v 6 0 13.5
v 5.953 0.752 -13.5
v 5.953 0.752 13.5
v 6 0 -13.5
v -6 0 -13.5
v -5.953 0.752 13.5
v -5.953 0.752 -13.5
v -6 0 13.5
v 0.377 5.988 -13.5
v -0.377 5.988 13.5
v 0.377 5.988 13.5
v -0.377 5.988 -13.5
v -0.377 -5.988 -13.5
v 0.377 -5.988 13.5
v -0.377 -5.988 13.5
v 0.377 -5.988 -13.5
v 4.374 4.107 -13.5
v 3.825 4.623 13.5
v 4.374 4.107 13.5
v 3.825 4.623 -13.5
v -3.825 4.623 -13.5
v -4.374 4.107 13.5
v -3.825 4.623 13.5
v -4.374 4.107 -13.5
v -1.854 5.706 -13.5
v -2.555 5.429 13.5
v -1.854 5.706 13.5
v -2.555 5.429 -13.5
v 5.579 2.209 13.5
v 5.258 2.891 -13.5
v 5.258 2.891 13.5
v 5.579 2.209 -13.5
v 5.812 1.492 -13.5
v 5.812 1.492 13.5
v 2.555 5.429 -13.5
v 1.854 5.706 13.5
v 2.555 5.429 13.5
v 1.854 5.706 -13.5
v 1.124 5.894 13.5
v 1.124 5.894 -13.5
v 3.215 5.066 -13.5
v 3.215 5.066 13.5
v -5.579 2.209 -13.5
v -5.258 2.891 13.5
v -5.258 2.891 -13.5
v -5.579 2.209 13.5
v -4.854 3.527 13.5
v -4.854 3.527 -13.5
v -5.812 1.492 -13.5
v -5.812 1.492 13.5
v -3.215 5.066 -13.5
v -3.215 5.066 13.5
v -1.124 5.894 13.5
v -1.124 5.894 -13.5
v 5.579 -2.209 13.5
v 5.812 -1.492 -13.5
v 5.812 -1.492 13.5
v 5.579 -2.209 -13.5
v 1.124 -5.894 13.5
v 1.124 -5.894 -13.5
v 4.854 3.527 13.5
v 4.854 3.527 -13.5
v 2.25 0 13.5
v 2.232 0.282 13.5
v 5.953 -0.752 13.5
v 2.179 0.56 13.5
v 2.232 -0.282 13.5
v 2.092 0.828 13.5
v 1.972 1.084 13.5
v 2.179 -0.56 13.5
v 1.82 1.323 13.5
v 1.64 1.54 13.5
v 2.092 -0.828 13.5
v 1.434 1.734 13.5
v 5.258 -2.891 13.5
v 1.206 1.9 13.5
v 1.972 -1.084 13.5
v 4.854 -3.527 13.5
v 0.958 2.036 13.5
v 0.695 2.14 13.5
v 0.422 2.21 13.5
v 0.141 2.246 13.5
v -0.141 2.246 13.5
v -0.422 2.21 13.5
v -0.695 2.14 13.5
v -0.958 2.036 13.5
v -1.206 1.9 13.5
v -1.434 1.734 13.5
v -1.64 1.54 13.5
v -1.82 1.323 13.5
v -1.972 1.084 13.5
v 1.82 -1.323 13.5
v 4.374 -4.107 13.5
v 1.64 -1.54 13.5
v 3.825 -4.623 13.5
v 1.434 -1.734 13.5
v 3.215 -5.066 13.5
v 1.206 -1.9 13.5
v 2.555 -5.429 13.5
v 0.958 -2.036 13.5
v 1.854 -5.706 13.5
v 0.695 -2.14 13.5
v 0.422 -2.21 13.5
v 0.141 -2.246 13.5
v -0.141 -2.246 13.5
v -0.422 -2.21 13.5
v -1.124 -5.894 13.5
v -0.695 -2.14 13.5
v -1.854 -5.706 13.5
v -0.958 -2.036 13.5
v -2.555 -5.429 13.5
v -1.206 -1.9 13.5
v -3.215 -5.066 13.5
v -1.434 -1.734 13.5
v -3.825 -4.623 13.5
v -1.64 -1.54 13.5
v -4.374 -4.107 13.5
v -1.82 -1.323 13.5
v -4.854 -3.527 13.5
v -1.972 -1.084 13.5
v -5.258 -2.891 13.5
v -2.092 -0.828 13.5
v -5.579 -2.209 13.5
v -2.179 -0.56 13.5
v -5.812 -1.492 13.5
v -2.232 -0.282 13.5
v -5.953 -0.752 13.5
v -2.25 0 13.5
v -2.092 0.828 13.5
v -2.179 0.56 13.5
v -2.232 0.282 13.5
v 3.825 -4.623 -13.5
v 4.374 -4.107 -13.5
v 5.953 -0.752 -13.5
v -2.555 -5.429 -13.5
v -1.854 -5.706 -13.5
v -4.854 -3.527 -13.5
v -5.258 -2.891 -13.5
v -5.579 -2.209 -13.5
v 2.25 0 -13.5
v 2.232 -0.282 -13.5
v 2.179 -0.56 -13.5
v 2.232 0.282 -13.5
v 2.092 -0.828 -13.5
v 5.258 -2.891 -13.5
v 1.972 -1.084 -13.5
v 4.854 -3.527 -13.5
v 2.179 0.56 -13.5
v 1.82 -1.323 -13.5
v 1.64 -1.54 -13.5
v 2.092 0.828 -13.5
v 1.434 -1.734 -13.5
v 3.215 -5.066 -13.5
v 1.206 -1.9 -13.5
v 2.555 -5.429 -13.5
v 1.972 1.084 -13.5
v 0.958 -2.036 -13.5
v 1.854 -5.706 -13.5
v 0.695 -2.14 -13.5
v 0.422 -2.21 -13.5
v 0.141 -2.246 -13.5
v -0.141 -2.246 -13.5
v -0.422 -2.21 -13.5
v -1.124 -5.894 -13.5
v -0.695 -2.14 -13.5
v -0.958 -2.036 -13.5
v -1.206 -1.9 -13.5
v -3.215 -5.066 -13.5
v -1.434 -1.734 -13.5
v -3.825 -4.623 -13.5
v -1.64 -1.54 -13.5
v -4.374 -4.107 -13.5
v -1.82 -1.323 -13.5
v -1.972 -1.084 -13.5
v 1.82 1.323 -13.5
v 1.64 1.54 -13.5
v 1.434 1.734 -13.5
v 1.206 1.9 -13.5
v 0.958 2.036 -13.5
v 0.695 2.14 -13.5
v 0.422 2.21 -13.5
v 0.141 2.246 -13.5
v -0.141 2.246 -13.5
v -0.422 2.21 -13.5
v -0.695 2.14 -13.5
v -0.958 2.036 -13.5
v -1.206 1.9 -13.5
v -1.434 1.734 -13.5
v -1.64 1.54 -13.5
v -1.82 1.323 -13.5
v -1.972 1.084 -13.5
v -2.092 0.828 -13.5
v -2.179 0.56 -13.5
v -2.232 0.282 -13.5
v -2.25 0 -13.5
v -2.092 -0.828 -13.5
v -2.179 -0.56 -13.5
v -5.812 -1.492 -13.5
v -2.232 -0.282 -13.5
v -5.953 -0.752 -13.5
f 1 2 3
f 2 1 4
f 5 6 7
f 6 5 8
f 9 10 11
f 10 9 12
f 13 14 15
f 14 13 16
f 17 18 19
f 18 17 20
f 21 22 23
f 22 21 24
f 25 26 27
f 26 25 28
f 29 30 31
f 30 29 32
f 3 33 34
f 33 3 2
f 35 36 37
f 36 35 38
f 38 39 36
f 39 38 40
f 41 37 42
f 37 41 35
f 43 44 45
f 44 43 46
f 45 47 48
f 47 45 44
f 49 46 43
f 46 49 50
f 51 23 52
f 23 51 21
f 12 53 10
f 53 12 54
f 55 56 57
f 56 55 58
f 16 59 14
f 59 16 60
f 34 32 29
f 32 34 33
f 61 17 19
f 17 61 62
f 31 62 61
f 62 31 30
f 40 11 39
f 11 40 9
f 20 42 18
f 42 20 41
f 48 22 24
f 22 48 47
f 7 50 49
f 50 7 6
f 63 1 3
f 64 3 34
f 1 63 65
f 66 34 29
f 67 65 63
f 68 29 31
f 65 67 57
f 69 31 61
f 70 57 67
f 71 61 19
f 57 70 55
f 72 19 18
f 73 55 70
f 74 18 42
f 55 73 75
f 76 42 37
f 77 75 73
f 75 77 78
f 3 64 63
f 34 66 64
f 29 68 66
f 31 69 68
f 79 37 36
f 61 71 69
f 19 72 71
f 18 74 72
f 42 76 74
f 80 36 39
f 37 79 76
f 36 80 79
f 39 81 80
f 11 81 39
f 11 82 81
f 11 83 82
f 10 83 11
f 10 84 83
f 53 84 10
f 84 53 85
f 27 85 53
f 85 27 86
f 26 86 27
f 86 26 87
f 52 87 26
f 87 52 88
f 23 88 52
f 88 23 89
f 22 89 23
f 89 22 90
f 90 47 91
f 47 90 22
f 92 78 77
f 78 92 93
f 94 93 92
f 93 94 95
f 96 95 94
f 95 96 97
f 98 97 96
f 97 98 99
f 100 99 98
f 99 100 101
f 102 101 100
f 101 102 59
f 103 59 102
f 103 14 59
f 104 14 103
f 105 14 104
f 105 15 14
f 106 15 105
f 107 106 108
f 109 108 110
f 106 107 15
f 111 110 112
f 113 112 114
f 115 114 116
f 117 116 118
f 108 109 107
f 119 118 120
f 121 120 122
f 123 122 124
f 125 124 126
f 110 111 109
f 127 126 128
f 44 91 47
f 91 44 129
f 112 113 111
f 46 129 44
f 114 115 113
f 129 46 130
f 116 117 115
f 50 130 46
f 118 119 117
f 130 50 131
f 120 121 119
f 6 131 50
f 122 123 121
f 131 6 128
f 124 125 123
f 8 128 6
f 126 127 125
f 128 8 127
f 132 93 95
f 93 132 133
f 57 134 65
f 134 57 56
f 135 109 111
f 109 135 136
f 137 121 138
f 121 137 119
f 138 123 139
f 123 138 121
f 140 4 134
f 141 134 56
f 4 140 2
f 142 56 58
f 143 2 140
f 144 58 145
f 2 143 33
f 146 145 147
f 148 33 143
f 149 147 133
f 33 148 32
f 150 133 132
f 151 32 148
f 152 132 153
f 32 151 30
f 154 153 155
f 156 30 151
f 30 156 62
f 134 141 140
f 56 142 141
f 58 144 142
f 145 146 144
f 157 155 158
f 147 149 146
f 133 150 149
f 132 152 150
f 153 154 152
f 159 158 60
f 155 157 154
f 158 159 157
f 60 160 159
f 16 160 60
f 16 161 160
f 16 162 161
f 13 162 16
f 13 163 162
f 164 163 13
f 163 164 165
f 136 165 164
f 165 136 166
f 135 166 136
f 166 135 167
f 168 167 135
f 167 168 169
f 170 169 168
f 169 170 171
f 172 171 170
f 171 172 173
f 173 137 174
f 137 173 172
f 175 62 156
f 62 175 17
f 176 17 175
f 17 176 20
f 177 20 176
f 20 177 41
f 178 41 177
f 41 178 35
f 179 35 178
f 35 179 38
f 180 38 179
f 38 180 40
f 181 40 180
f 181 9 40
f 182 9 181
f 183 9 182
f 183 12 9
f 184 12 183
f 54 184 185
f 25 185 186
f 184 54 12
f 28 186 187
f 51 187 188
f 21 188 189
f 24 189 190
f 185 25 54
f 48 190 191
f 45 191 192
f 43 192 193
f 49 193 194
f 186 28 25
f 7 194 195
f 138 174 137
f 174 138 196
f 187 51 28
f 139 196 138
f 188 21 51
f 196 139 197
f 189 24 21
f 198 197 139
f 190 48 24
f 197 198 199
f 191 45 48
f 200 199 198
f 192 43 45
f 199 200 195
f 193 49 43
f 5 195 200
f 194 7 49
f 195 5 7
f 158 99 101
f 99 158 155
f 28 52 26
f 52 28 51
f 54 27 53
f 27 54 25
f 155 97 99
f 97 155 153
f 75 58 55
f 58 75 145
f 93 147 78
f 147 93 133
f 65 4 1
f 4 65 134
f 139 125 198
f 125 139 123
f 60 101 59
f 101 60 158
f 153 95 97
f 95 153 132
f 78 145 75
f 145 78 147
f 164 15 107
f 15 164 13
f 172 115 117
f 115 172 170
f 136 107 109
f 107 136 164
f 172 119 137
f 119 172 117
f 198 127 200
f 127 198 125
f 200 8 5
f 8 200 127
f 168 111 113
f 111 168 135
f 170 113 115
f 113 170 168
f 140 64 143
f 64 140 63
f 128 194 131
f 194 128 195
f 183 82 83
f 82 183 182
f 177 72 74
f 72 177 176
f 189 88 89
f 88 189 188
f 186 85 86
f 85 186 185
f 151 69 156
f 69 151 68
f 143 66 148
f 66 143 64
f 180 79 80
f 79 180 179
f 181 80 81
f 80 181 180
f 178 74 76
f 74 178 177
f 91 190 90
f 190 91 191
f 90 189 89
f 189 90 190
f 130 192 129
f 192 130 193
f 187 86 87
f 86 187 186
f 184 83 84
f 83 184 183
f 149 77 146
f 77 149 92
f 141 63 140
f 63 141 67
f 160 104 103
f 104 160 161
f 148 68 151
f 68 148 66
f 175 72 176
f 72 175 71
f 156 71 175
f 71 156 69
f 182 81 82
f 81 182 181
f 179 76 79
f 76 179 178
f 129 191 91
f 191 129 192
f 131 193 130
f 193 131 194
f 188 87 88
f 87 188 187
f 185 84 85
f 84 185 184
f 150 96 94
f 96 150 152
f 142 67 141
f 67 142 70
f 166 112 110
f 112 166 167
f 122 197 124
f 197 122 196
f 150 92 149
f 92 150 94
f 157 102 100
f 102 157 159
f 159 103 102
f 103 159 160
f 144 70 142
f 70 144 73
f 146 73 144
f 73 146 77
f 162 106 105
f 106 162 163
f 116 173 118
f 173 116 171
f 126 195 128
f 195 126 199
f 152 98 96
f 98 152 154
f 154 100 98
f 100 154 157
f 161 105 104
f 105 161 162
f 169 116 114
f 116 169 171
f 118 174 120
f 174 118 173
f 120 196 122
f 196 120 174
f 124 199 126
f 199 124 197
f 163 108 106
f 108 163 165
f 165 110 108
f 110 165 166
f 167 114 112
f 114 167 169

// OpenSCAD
$fn = 50;


difference() {
	union() {
		translate(v = [0, 0, -13.5000000000]) {
			cylinder(h = 27, r = 6.0000000000);
		}
	}
	union() {
		translate(v = [0, 0, -100.0000000000]) {
			cylinder(h = 200, r = 2.2500000000);
		}
	}
}
